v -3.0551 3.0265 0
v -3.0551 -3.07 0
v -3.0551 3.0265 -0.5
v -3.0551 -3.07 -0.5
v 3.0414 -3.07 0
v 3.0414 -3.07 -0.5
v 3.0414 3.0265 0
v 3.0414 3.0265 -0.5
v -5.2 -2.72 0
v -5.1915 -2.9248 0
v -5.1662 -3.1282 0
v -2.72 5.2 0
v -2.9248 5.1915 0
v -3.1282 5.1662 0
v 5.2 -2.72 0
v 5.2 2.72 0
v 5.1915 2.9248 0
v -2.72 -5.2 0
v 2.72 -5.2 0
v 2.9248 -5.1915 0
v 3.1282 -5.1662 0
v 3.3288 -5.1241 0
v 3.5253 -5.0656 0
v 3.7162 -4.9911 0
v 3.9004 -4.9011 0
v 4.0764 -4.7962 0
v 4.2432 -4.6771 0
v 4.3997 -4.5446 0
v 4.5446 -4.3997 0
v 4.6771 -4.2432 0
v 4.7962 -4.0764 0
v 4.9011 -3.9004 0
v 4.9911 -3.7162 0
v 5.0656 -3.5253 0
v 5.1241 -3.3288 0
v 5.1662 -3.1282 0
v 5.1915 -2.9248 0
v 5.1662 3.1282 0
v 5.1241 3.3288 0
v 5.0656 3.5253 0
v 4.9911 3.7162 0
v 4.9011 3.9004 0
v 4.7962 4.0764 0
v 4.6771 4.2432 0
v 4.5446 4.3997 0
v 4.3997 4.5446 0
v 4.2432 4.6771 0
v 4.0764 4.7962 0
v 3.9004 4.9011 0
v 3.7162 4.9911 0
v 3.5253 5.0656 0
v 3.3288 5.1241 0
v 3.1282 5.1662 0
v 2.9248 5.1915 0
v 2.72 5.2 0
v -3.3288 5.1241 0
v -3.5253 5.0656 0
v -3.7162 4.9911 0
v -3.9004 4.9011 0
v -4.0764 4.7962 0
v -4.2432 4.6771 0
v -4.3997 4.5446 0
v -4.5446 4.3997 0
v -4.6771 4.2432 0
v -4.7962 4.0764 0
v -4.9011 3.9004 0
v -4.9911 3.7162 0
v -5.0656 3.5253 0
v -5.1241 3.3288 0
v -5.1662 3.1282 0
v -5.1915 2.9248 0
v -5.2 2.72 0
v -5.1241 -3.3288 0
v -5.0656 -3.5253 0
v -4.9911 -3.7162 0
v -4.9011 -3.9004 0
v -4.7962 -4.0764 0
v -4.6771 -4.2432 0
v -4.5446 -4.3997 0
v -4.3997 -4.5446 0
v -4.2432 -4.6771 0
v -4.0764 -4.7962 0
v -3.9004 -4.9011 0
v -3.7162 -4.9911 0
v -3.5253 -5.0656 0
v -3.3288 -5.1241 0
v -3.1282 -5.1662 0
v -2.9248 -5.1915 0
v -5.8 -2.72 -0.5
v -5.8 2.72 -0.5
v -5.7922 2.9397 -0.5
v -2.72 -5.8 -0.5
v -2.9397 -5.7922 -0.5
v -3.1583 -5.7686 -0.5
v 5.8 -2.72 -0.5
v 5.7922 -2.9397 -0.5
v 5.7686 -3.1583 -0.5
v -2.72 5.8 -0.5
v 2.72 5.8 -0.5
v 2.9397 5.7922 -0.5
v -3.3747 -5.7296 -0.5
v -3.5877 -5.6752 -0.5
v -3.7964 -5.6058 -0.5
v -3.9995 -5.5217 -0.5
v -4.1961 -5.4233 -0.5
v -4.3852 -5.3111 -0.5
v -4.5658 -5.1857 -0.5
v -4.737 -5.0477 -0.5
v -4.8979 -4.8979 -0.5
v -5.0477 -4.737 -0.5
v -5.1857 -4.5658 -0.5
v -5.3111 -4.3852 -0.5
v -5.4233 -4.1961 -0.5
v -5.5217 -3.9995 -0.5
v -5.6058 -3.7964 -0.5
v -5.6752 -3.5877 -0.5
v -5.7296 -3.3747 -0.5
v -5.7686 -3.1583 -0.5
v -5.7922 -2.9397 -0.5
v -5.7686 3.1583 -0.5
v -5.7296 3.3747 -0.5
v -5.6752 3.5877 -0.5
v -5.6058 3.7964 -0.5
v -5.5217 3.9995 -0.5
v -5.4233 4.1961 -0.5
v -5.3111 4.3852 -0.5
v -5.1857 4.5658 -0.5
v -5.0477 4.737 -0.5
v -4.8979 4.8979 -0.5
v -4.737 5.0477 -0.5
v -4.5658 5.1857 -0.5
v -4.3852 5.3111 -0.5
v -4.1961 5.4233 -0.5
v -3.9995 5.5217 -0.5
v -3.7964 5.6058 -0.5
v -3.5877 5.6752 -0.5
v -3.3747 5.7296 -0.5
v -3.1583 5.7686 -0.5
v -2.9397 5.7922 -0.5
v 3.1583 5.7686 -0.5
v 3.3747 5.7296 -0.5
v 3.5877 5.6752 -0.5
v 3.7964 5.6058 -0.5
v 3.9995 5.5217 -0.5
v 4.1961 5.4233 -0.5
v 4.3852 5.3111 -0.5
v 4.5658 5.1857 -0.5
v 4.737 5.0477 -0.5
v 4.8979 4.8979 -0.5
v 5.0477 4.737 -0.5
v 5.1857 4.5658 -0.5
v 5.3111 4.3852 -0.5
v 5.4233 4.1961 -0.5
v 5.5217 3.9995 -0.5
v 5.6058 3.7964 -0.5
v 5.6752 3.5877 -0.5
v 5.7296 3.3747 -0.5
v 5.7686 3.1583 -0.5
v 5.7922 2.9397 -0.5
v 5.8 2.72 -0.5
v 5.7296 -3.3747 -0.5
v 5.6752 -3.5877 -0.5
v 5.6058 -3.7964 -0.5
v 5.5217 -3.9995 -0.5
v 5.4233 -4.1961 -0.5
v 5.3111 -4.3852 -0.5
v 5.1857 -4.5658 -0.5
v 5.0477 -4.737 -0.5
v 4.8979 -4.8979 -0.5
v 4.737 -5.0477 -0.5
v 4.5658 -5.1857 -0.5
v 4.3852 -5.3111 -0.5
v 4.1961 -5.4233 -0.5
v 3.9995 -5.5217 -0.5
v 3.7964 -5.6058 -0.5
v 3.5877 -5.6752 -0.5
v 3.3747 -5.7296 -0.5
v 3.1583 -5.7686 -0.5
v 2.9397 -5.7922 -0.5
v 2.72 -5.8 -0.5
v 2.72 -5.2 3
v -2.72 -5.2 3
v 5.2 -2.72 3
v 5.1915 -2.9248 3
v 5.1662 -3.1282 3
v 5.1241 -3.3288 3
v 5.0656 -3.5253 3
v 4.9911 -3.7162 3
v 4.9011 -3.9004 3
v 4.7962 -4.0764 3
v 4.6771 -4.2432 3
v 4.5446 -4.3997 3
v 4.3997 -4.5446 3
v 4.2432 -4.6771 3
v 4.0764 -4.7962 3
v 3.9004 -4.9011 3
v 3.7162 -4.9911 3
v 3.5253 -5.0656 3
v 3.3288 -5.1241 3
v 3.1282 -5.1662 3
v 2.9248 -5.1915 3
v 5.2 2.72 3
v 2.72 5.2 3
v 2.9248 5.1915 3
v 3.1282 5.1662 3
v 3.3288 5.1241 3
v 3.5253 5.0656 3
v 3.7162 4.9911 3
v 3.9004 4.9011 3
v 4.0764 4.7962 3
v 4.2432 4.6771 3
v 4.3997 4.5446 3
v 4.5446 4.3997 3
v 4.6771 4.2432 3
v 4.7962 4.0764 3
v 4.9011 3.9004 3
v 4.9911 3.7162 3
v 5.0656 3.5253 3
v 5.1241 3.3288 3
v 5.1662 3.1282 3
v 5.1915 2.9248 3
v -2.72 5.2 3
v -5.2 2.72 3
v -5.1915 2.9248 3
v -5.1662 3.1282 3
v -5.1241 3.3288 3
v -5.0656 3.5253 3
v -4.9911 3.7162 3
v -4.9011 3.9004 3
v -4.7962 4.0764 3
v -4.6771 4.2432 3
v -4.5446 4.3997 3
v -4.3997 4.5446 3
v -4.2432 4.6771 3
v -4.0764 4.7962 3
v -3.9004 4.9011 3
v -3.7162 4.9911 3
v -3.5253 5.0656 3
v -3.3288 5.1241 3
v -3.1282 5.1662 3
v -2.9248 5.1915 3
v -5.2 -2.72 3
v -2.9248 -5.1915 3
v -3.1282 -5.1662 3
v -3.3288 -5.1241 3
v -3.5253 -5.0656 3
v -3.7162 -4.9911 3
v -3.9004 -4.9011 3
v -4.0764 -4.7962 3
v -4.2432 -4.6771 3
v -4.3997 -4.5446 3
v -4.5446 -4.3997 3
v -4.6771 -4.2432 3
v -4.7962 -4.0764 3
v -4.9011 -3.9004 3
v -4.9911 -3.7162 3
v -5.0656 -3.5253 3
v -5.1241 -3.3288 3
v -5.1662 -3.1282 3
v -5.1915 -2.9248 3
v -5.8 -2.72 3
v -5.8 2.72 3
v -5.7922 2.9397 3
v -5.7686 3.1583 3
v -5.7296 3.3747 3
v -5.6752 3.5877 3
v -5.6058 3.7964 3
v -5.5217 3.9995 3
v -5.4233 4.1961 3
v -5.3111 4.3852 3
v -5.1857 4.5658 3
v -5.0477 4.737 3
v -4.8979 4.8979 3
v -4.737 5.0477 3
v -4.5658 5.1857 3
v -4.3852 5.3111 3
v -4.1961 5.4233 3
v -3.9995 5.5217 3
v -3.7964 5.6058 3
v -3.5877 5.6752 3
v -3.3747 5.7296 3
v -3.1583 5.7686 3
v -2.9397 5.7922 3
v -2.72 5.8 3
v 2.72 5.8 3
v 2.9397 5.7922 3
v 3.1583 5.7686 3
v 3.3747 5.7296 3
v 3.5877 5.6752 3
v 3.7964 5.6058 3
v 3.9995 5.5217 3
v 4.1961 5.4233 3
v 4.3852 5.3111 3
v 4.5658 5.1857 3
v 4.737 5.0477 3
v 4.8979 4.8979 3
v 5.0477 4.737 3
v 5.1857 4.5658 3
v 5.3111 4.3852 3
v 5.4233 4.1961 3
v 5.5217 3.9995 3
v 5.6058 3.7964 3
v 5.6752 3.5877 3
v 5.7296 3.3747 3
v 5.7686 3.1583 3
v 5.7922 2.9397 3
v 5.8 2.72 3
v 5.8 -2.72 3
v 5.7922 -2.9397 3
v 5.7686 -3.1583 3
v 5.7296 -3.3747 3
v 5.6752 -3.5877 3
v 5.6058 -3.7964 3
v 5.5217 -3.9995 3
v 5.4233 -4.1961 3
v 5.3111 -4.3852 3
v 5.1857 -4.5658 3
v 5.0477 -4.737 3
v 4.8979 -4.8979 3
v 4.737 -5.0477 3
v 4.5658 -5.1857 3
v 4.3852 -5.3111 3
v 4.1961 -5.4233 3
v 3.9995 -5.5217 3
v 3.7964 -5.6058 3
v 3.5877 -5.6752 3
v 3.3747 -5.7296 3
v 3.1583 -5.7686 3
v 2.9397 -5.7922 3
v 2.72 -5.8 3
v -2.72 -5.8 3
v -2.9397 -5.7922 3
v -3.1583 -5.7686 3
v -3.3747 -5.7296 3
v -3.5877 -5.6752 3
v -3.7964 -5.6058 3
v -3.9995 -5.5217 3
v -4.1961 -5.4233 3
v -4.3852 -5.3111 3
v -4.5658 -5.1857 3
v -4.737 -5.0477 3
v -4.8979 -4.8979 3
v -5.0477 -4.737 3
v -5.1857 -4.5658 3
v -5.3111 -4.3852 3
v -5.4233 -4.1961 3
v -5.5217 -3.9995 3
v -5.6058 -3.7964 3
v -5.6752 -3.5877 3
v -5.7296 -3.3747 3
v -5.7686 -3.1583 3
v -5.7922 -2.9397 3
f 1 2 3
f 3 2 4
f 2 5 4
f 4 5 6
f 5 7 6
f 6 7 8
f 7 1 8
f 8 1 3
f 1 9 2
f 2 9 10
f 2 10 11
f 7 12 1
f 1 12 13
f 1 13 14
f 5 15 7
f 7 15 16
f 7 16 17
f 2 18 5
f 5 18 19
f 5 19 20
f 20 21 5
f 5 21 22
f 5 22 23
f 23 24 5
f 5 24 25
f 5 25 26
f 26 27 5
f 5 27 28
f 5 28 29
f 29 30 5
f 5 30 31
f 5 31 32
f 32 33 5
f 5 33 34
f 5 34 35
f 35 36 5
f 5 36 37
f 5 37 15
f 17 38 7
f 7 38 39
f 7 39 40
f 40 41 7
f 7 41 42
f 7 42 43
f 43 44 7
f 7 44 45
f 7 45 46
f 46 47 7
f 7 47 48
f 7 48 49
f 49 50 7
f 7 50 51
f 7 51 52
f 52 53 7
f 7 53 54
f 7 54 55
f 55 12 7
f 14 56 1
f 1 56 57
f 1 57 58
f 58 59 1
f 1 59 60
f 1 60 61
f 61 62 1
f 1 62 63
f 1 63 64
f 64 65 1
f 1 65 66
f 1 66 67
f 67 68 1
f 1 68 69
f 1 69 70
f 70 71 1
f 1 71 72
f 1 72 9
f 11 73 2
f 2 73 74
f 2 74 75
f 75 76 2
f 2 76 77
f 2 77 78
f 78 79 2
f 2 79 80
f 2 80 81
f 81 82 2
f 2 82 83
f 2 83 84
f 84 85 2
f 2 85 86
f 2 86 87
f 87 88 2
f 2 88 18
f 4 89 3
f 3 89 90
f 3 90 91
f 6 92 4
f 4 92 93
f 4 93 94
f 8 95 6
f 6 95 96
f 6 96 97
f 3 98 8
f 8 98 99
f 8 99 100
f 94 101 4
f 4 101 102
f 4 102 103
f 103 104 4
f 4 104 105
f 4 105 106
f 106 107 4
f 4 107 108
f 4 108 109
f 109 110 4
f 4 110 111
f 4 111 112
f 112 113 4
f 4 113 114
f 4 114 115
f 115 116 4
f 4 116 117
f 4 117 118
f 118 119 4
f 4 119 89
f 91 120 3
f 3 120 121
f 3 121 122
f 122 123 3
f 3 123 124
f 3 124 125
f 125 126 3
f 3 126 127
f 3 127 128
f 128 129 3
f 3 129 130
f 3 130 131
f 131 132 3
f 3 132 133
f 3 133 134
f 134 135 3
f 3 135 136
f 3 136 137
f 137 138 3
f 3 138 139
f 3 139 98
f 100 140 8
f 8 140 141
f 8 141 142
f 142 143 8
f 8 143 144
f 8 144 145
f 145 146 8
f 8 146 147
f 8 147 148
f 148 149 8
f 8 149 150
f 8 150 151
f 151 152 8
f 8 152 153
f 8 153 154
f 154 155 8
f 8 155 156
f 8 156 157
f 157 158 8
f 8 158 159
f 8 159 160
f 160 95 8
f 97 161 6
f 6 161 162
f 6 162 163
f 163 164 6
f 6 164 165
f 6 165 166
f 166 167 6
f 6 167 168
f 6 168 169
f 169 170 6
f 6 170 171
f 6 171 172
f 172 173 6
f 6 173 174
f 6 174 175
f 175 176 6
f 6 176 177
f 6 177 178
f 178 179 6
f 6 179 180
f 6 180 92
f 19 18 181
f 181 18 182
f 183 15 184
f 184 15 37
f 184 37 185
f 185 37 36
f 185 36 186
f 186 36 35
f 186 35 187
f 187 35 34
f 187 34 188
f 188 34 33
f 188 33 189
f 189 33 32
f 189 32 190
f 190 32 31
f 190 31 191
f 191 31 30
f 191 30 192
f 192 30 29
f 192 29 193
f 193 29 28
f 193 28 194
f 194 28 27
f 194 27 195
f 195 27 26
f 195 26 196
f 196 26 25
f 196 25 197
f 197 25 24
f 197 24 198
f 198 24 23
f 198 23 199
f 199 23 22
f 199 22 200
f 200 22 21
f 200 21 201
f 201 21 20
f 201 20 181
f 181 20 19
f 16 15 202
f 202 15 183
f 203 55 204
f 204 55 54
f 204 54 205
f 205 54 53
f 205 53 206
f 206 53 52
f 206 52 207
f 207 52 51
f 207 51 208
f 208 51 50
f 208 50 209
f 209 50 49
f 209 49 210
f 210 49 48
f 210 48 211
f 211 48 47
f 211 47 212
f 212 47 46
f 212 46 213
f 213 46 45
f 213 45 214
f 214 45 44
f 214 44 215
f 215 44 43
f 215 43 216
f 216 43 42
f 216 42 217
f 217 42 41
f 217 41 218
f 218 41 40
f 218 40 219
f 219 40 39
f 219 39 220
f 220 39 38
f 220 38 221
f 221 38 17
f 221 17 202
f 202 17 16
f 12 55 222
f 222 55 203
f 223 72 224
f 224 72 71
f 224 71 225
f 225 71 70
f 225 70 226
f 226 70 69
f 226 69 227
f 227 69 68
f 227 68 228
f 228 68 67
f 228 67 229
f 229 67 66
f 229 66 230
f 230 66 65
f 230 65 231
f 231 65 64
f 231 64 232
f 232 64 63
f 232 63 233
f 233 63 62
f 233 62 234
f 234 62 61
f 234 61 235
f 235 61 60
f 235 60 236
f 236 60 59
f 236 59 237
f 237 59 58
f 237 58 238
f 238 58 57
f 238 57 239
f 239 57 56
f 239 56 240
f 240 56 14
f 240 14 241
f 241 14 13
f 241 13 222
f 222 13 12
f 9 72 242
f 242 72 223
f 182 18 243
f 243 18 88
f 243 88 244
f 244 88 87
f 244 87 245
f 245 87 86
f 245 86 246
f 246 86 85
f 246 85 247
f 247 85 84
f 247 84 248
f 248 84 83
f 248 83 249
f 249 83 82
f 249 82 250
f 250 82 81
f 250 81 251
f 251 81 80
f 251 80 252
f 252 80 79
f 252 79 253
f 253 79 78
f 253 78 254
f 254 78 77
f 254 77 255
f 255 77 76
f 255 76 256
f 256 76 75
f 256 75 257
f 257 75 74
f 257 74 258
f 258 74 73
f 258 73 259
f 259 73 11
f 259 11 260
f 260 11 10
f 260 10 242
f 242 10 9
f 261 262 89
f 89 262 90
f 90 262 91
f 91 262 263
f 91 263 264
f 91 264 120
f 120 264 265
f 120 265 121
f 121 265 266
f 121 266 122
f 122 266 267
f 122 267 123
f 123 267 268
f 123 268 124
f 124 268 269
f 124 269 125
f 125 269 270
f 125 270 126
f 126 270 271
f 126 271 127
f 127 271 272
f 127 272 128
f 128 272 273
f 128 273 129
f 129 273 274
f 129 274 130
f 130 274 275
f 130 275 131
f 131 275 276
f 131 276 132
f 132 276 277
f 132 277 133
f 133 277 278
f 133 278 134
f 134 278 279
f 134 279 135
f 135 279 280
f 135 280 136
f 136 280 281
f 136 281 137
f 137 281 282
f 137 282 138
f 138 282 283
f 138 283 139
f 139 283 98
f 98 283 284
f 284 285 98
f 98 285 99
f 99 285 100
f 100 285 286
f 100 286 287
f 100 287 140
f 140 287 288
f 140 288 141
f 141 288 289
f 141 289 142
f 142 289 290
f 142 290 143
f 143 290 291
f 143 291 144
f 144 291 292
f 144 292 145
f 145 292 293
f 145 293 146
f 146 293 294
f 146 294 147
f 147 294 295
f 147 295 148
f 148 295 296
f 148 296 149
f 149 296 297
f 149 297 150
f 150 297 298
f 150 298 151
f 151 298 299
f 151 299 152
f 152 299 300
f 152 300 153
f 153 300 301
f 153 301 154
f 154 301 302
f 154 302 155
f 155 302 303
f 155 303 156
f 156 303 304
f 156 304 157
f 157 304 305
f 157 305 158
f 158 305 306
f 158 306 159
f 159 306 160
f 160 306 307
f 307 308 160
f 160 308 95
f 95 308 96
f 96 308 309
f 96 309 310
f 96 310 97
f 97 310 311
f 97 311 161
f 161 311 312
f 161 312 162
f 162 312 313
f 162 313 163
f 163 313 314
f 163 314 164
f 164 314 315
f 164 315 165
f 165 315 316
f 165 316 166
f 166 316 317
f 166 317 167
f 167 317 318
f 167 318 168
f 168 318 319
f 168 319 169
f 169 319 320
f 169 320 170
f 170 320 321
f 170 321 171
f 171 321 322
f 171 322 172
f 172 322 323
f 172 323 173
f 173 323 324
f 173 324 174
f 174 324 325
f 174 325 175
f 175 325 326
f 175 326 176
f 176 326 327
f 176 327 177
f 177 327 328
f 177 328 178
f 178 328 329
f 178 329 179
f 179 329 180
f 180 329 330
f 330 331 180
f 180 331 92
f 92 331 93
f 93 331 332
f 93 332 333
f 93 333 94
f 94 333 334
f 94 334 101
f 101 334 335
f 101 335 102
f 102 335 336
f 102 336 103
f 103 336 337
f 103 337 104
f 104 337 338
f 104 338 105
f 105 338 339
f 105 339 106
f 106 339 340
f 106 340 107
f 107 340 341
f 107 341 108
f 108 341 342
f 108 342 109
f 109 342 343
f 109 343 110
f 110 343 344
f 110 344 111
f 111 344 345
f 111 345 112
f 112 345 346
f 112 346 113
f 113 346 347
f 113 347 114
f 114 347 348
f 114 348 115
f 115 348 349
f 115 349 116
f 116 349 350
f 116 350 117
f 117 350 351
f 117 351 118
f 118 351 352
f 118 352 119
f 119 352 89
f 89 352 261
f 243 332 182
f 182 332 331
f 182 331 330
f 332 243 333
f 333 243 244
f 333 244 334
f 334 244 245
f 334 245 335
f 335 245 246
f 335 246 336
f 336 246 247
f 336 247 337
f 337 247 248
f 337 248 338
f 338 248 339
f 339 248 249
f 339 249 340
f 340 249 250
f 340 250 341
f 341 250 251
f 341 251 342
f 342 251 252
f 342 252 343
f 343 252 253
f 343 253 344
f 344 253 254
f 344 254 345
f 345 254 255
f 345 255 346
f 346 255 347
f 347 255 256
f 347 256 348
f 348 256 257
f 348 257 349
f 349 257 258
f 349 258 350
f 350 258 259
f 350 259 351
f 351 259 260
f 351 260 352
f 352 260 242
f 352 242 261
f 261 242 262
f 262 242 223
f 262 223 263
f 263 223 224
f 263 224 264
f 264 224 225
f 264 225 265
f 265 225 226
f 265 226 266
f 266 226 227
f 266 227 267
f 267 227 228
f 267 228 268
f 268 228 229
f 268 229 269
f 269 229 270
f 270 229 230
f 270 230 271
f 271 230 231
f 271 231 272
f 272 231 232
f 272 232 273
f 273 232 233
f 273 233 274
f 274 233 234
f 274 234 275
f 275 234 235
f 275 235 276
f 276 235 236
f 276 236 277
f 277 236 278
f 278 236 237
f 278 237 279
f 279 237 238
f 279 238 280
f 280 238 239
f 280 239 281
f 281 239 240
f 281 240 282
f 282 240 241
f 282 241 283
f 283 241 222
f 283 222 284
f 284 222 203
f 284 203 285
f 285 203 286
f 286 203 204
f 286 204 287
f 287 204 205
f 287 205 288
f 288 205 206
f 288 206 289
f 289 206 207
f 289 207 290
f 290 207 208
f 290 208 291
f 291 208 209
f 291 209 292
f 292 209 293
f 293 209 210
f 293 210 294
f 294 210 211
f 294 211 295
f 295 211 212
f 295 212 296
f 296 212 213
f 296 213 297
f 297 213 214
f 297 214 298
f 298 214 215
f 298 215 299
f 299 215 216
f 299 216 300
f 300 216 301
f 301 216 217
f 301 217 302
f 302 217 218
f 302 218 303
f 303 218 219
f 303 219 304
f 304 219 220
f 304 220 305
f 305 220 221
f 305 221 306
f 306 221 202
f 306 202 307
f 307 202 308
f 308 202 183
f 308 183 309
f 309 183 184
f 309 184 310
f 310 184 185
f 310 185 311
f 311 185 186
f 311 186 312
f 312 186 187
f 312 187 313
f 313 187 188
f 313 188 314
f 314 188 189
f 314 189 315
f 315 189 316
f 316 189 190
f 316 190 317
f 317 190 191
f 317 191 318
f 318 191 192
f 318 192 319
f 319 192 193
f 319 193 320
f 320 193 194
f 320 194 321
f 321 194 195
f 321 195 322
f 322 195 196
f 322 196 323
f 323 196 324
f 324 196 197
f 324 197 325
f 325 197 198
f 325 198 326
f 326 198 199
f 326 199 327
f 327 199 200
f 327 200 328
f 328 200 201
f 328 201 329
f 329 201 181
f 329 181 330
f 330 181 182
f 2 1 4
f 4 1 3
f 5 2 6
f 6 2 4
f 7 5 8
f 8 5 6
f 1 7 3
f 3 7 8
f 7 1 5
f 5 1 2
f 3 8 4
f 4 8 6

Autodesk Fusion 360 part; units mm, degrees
sketch "Sketch1" plane through (0, 0, 0) normal (0, 0, 1) x (1, 0, 0)
  line L0 (2.72, 5) -> (-2.72, 5)
  line L1 (-5, 2.72) -> (-5, -2.72)
  line L2 (-2.72, -5) -> (2.72, -5)
  line L3 (5, -2.72) -> (5, 2.72)
  line L4 (5, 5) -> (-5, -5) construction
  line L5 (-5, 5) -> (5, -5) construction
  arc A0 (5, 2.72) -> (2.72, 5) centre (2.72, 2.72) ccw
  arc A1 (2.72, -5) -> (5, -2.72) centre (2.72, -2.72) ccw
  arc A2 (-5, -2.72) -> (-2.72, -5) centre (-2.72, -2.72) ccw
  arc A3 (-2.72, 5) -> (-5, 2.72) centre (-2.72, 2.72) ccw
  line L6 (-2.72, -5.2) -> (2.72, -5.2)
  arc A4 (2.72, -5.2) -> (5.2, -2.72) centre (2.72, -2.72) ccw
  line L7 (5.2, -2.72) -> (5.2, 2.72)
  arc A5 (5.2, 2.72) -> (2.72, 5.2) centre (2.72, 2.72) ccw
  line L8 (2.72, 5.2) -> (-2.72, 5.2)
  arc A6 (-2.72, 5.2) -> (-5.2, 2.72) centre (-2.72, 2.72) ccw
  line L9 (-5.2, 2.72) -> (-5.2, -2.72)
  arc A7 (-5.2, -2.72) -> (-2.72, -5.2) centre (-2.72, -2.72) ccw
  line L10 (-2.72, -5.8) -> (2.72, -5.8)
  arc A8 (2.72, -5.8) -> (5.8, -2.72) centre (2.72, -2.72) ccw
  line L11 (5.8, -2.72) -> (5.8, 2.72)
  arc A9 (5.8, 2.72) -> (2.72, 5.8) centre (2.72, 2.72) ccw
  line L12 (2.72, 5.8) -> (-2.72, 5.8)
  arc A10 (-2.72, 5.8) -> (-5.8, 2.72) centre (-2.72, 2.72) ccw
  line L13 (-5.8, 2.72) -> (-5.8, -2.72)
  arc A11 (-5.8, -2.72) -> (-2.72, -5.8) centre (-2.72, -2.72) ccw
  dimension "d1" = 10
  dimension "d2" = 10
  dimension "d3" = 2.28
  dimension "d4" = 0.2
  dimension "d5" = 0.8
extrude "Extrude1" add sketch "Sketch1" along normal blind 3 contours L10 A8 L11 A9 L12 A10 L13 A11 makes body 1
extrude "Extrude2" add sketch "Sketch1" against normal blind 0.5 contours L0 L1 L2 L3 A0 A1 A2 A3 | L6 A4 L7 A5 L8 A6 L9 A7 | L10 A8 L11 A9 L12 A10 L13 A11 bodies 1
sketch "Sketch2" plane through (0, 0, 0) normal (0, 0, 1) x (1, 0, 0)
  line L0 (-2.72, -5.2) -> (2.72, -5.2)
  arc A0 (2.72, -5.2) -> (5.2, -2.72) centre (2.72, -2.72) ccw
  line L1 (5.2, -2.72) -> (5.2, 2.72)
  arc A1 (5.2, 2.72) -> (2.72, 5.2) centre (2.72, 2.72) ccw
  line L2 (2.72, 5.2) -> (-2.72, 5.2)
  arc A2 (-2.72, 5.2) -> (-5.2, 2.72) centre (-2.72, 2.72) ccw
  line L3 (-5.2, 2.72) -> (-5.2, -2.72)
  arc A3 (-5.2, -2.72) -> (-2.72, -5.2) centre (-2.72, -2.72) ccw
  line L4 (3.0414, -3.07) -> (-3.0551, -3.07)
  line L5 (-3.0551, -3.07) -> (-3.0551, 3.0265)
  line L6 (-3.0551, 3.0265) -> (3.0414, 3.0265)
  line L7 (3.0414, 3.0265) -> (3.0414, -3.07)
extrude "Extrude3" cut sketch "Sketch2" against normal blind 0.5 contours L4 L5 L6 L7 bodies 1
extrude "Extrude4" add sketch "Sketch2" against normal blind 0.5 separate body contours L4 L5 L6 L7 makes body 2
